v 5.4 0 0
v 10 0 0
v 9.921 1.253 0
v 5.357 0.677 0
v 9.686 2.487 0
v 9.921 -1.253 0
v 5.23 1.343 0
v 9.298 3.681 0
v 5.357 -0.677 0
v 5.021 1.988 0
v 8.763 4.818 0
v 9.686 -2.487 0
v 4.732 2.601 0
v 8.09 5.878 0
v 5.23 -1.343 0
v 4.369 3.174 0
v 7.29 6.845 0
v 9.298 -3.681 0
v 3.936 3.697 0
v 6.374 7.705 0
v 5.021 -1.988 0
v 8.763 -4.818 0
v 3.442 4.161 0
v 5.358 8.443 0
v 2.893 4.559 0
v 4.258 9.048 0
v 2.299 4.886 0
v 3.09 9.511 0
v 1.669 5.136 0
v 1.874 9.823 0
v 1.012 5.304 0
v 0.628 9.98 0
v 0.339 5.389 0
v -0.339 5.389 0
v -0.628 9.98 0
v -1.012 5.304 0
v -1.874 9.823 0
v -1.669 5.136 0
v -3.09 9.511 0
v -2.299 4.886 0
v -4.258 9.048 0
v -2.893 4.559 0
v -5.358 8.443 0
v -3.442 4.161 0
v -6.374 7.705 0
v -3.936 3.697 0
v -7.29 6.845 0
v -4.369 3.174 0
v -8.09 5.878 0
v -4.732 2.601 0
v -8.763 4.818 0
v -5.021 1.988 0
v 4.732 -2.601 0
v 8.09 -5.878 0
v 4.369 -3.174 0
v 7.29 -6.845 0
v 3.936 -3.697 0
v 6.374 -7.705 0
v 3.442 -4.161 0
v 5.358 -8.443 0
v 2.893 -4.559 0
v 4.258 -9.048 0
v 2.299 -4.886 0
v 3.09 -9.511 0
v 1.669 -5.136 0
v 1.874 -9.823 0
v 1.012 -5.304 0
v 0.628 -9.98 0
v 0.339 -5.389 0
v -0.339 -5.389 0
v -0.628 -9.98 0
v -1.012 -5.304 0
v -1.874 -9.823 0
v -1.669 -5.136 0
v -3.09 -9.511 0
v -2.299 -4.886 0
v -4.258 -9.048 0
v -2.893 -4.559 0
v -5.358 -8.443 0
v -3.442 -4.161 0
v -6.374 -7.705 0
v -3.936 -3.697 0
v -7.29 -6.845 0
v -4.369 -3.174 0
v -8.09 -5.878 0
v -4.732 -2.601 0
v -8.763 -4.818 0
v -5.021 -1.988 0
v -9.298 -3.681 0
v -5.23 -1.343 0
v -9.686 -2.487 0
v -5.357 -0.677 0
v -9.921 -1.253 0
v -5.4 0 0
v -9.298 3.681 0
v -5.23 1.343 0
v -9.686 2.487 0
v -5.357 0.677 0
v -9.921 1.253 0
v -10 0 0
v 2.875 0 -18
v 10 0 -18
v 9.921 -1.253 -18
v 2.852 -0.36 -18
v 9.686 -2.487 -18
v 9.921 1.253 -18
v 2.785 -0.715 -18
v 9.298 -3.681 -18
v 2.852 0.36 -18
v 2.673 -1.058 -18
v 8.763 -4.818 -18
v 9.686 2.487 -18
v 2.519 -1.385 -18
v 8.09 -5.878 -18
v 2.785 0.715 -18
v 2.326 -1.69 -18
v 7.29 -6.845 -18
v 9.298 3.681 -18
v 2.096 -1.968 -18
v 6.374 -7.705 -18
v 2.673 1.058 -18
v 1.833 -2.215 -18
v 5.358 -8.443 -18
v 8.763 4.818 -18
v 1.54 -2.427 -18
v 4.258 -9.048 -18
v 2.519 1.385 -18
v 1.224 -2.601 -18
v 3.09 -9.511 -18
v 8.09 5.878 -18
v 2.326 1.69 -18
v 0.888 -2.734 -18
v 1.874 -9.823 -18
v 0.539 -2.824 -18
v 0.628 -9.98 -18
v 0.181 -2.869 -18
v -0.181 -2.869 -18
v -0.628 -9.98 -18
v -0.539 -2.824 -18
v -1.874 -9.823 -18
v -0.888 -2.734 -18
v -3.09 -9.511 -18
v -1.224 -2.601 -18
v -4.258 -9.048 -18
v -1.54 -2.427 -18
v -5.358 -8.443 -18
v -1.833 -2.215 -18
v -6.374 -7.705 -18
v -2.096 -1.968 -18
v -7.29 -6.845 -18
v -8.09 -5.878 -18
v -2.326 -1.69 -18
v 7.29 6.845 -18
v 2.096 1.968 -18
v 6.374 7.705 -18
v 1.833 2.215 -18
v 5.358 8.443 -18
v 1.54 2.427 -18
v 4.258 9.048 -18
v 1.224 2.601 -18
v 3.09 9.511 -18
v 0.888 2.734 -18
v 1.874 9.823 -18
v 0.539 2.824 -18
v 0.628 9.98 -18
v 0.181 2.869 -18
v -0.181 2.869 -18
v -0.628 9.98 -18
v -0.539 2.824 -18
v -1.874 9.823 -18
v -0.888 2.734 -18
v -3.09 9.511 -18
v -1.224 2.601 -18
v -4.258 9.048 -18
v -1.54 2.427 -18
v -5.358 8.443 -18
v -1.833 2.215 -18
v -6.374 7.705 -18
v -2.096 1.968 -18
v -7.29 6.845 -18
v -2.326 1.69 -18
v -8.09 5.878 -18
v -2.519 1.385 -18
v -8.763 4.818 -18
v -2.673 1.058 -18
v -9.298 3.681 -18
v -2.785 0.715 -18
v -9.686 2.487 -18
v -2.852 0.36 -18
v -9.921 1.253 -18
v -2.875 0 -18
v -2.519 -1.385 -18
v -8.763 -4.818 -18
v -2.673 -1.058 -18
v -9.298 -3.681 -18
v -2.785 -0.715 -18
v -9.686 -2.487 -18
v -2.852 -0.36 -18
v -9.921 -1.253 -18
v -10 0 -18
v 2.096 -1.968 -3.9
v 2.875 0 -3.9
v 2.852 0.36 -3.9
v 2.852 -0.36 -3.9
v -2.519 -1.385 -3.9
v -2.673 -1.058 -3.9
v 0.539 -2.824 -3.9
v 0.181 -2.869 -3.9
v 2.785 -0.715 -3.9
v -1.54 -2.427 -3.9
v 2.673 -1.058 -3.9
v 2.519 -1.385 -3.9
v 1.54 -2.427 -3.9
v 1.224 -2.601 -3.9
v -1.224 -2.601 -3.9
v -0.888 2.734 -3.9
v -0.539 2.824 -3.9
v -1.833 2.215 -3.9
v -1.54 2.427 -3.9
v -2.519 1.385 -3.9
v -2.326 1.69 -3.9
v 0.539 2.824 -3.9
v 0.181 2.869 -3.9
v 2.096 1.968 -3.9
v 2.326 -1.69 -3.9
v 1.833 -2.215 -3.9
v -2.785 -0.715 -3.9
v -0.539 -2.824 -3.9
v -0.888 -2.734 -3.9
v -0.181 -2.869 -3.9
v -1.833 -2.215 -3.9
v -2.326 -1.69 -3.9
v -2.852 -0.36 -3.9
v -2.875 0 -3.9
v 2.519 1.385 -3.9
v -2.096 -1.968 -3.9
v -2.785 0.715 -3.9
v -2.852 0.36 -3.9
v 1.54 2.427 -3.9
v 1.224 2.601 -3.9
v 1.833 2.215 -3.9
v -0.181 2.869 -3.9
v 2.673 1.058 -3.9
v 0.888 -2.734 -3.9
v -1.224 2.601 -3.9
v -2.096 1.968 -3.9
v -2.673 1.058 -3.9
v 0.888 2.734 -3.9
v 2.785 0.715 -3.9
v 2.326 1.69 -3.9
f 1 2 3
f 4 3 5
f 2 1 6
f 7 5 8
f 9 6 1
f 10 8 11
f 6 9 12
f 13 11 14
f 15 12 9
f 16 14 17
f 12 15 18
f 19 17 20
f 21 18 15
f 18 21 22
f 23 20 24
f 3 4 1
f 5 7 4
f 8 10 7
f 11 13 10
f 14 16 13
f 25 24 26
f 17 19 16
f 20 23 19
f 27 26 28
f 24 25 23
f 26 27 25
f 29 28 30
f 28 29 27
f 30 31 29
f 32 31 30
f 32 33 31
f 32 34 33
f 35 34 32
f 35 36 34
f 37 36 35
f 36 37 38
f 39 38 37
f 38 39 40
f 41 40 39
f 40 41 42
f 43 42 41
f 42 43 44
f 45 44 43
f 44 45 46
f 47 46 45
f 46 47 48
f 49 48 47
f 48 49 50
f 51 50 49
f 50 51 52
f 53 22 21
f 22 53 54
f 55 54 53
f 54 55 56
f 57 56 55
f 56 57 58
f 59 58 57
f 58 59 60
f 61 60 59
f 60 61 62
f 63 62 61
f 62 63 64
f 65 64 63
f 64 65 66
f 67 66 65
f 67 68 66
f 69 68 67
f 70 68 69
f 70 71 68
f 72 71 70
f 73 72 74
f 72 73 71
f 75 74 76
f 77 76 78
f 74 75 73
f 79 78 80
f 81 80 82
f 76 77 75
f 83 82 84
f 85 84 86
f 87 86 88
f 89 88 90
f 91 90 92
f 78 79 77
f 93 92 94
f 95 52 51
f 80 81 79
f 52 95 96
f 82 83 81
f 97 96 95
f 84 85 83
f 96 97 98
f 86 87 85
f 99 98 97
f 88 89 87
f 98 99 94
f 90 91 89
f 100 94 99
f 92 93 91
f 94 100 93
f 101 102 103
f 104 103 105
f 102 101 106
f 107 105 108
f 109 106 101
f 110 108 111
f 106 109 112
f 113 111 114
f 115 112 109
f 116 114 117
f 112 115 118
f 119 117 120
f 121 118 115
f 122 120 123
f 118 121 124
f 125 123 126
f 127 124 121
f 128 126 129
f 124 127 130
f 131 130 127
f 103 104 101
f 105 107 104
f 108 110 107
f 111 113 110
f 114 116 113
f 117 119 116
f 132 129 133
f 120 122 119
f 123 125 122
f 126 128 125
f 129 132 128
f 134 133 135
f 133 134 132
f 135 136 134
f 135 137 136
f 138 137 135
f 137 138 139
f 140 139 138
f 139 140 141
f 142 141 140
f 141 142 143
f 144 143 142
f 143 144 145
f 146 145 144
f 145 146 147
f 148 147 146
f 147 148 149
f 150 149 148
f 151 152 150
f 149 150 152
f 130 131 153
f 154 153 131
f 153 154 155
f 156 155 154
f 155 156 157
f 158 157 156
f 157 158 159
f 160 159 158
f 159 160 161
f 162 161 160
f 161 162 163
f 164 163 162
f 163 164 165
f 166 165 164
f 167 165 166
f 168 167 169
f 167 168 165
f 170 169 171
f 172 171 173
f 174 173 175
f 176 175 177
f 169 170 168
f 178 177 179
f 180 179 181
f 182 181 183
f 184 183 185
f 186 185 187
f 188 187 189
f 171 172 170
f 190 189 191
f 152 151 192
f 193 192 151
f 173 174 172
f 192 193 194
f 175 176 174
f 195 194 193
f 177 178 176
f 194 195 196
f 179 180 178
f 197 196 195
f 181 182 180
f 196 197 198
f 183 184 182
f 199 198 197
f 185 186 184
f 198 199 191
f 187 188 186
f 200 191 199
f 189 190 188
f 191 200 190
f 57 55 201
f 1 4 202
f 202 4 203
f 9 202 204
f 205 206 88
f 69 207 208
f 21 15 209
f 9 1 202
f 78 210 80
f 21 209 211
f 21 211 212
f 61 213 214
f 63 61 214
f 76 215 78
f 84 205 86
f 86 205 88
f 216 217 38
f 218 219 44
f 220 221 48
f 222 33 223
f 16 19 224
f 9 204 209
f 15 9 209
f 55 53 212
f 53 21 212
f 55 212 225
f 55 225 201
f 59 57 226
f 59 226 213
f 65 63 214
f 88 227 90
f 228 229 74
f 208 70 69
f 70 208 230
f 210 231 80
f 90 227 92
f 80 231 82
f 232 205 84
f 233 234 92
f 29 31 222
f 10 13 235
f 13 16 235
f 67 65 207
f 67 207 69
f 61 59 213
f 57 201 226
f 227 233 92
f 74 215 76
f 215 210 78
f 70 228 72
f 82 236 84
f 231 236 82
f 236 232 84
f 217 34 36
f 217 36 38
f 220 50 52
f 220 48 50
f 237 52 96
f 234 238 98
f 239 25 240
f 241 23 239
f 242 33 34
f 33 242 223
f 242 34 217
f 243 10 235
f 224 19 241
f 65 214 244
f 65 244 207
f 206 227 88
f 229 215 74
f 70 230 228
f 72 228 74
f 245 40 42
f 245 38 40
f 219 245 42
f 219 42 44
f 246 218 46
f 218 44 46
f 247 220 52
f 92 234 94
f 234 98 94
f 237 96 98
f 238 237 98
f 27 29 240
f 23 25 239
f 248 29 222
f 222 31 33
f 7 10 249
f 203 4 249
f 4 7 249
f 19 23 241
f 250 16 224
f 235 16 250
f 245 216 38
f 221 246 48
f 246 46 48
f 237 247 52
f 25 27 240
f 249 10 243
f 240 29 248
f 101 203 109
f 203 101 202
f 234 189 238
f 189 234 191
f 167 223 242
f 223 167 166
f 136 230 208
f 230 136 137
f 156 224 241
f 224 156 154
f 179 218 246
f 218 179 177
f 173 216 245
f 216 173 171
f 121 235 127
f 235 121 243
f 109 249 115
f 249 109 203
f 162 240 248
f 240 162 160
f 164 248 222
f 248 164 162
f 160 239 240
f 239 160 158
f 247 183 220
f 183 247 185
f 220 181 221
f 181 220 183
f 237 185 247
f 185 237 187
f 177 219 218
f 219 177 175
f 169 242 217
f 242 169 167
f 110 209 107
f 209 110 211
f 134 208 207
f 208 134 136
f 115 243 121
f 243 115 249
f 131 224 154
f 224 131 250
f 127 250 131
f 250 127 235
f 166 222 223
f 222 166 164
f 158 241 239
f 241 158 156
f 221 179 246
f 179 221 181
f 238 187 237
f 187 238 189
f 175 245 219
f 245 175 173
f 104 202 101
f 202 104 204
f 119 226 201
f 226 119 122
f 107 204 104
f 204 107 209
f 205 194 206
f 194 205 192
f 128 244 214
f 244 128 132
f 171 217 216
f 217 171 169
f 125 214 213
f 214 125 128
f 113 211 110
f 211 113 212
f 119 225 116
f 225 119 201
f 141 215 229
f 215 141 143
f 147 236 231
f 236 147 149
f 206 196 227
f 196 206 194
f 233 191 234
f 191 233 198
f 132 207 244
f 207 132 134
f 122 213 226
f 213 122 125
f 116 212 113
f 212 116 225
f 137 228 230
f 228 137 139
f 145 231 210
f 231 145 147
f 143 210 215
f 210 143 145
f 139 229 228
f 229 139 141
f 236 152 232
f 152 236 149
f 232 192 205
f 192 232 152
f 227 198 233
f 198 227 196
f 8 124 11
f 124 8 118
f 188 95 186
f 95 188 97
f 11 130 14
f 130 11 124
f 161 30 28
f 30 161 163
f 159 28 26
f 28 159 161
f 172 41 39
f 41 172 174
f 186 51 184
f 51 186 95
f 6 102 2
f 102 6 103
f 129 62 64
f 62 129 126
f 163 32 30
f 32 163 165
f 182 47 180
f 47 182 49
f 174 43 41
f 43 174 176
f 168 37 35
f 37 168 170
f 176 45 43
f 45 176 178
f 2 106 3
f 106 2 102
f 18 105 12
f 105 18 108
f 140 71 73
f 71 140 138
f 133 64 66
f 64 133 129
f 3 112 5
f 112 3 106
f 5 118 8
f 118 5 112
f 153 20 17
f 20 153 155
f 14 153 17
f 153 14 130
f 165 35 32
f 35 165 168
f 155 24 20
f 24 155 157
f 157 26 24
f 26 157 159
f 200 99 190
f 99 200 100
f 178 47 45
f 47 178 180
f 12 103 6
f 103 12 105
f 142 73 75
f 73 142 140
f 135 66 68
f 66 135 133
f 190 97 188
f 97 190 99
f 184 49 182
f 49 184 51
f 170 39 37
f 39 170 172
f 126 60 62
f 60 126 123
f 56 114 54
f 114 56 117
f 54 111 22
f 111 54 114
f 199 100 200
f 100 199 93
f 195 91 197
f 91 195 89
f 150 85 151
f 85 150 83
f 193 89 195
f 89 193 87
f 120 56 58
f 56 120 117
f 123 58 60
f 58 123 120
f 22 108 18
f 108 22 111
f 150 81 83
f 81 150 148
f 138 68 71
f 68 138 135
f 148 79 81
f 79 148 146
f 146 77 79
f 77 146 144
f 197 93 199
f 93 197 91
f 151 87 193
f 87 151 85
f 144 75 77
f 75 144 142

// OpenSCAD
$fn = 50;


difference() {
	union() {
		translate(v = [0, 0, -18.0000000000]) {
			cylinder(h = 18, r = 10.0000000000);
		}
		cylinder(h = 0, r = 16.0000000000);
	}
	union() {
		translate(v = [0, 0, 0]) {
			rotate(a = [0, 0, 0]) {
				difference() {
					union() {
						#translate(v = [0, 0, -18.0000000000]) {
							cylinder(h = 18, r = 2.6000000000);
						}
						#translate(v = [0, 0, -3.9000000000]) {
							cylinder(h = 3.9000000000, r = 10.0000000000, r1 = 2.8750000000, r2 = 5.4000000000);
						}
						#translate(v = [0, 0, -18.0000000000]) {
							cylinder(h = 18, r = 2.8750000000);
						}
						#translate(v = [0, 0, -18.0000000000]) {
							cylinder(h = 18, r = 2.6000000000);
						}
					}
					union();
				}
			}
		}
	}
}
